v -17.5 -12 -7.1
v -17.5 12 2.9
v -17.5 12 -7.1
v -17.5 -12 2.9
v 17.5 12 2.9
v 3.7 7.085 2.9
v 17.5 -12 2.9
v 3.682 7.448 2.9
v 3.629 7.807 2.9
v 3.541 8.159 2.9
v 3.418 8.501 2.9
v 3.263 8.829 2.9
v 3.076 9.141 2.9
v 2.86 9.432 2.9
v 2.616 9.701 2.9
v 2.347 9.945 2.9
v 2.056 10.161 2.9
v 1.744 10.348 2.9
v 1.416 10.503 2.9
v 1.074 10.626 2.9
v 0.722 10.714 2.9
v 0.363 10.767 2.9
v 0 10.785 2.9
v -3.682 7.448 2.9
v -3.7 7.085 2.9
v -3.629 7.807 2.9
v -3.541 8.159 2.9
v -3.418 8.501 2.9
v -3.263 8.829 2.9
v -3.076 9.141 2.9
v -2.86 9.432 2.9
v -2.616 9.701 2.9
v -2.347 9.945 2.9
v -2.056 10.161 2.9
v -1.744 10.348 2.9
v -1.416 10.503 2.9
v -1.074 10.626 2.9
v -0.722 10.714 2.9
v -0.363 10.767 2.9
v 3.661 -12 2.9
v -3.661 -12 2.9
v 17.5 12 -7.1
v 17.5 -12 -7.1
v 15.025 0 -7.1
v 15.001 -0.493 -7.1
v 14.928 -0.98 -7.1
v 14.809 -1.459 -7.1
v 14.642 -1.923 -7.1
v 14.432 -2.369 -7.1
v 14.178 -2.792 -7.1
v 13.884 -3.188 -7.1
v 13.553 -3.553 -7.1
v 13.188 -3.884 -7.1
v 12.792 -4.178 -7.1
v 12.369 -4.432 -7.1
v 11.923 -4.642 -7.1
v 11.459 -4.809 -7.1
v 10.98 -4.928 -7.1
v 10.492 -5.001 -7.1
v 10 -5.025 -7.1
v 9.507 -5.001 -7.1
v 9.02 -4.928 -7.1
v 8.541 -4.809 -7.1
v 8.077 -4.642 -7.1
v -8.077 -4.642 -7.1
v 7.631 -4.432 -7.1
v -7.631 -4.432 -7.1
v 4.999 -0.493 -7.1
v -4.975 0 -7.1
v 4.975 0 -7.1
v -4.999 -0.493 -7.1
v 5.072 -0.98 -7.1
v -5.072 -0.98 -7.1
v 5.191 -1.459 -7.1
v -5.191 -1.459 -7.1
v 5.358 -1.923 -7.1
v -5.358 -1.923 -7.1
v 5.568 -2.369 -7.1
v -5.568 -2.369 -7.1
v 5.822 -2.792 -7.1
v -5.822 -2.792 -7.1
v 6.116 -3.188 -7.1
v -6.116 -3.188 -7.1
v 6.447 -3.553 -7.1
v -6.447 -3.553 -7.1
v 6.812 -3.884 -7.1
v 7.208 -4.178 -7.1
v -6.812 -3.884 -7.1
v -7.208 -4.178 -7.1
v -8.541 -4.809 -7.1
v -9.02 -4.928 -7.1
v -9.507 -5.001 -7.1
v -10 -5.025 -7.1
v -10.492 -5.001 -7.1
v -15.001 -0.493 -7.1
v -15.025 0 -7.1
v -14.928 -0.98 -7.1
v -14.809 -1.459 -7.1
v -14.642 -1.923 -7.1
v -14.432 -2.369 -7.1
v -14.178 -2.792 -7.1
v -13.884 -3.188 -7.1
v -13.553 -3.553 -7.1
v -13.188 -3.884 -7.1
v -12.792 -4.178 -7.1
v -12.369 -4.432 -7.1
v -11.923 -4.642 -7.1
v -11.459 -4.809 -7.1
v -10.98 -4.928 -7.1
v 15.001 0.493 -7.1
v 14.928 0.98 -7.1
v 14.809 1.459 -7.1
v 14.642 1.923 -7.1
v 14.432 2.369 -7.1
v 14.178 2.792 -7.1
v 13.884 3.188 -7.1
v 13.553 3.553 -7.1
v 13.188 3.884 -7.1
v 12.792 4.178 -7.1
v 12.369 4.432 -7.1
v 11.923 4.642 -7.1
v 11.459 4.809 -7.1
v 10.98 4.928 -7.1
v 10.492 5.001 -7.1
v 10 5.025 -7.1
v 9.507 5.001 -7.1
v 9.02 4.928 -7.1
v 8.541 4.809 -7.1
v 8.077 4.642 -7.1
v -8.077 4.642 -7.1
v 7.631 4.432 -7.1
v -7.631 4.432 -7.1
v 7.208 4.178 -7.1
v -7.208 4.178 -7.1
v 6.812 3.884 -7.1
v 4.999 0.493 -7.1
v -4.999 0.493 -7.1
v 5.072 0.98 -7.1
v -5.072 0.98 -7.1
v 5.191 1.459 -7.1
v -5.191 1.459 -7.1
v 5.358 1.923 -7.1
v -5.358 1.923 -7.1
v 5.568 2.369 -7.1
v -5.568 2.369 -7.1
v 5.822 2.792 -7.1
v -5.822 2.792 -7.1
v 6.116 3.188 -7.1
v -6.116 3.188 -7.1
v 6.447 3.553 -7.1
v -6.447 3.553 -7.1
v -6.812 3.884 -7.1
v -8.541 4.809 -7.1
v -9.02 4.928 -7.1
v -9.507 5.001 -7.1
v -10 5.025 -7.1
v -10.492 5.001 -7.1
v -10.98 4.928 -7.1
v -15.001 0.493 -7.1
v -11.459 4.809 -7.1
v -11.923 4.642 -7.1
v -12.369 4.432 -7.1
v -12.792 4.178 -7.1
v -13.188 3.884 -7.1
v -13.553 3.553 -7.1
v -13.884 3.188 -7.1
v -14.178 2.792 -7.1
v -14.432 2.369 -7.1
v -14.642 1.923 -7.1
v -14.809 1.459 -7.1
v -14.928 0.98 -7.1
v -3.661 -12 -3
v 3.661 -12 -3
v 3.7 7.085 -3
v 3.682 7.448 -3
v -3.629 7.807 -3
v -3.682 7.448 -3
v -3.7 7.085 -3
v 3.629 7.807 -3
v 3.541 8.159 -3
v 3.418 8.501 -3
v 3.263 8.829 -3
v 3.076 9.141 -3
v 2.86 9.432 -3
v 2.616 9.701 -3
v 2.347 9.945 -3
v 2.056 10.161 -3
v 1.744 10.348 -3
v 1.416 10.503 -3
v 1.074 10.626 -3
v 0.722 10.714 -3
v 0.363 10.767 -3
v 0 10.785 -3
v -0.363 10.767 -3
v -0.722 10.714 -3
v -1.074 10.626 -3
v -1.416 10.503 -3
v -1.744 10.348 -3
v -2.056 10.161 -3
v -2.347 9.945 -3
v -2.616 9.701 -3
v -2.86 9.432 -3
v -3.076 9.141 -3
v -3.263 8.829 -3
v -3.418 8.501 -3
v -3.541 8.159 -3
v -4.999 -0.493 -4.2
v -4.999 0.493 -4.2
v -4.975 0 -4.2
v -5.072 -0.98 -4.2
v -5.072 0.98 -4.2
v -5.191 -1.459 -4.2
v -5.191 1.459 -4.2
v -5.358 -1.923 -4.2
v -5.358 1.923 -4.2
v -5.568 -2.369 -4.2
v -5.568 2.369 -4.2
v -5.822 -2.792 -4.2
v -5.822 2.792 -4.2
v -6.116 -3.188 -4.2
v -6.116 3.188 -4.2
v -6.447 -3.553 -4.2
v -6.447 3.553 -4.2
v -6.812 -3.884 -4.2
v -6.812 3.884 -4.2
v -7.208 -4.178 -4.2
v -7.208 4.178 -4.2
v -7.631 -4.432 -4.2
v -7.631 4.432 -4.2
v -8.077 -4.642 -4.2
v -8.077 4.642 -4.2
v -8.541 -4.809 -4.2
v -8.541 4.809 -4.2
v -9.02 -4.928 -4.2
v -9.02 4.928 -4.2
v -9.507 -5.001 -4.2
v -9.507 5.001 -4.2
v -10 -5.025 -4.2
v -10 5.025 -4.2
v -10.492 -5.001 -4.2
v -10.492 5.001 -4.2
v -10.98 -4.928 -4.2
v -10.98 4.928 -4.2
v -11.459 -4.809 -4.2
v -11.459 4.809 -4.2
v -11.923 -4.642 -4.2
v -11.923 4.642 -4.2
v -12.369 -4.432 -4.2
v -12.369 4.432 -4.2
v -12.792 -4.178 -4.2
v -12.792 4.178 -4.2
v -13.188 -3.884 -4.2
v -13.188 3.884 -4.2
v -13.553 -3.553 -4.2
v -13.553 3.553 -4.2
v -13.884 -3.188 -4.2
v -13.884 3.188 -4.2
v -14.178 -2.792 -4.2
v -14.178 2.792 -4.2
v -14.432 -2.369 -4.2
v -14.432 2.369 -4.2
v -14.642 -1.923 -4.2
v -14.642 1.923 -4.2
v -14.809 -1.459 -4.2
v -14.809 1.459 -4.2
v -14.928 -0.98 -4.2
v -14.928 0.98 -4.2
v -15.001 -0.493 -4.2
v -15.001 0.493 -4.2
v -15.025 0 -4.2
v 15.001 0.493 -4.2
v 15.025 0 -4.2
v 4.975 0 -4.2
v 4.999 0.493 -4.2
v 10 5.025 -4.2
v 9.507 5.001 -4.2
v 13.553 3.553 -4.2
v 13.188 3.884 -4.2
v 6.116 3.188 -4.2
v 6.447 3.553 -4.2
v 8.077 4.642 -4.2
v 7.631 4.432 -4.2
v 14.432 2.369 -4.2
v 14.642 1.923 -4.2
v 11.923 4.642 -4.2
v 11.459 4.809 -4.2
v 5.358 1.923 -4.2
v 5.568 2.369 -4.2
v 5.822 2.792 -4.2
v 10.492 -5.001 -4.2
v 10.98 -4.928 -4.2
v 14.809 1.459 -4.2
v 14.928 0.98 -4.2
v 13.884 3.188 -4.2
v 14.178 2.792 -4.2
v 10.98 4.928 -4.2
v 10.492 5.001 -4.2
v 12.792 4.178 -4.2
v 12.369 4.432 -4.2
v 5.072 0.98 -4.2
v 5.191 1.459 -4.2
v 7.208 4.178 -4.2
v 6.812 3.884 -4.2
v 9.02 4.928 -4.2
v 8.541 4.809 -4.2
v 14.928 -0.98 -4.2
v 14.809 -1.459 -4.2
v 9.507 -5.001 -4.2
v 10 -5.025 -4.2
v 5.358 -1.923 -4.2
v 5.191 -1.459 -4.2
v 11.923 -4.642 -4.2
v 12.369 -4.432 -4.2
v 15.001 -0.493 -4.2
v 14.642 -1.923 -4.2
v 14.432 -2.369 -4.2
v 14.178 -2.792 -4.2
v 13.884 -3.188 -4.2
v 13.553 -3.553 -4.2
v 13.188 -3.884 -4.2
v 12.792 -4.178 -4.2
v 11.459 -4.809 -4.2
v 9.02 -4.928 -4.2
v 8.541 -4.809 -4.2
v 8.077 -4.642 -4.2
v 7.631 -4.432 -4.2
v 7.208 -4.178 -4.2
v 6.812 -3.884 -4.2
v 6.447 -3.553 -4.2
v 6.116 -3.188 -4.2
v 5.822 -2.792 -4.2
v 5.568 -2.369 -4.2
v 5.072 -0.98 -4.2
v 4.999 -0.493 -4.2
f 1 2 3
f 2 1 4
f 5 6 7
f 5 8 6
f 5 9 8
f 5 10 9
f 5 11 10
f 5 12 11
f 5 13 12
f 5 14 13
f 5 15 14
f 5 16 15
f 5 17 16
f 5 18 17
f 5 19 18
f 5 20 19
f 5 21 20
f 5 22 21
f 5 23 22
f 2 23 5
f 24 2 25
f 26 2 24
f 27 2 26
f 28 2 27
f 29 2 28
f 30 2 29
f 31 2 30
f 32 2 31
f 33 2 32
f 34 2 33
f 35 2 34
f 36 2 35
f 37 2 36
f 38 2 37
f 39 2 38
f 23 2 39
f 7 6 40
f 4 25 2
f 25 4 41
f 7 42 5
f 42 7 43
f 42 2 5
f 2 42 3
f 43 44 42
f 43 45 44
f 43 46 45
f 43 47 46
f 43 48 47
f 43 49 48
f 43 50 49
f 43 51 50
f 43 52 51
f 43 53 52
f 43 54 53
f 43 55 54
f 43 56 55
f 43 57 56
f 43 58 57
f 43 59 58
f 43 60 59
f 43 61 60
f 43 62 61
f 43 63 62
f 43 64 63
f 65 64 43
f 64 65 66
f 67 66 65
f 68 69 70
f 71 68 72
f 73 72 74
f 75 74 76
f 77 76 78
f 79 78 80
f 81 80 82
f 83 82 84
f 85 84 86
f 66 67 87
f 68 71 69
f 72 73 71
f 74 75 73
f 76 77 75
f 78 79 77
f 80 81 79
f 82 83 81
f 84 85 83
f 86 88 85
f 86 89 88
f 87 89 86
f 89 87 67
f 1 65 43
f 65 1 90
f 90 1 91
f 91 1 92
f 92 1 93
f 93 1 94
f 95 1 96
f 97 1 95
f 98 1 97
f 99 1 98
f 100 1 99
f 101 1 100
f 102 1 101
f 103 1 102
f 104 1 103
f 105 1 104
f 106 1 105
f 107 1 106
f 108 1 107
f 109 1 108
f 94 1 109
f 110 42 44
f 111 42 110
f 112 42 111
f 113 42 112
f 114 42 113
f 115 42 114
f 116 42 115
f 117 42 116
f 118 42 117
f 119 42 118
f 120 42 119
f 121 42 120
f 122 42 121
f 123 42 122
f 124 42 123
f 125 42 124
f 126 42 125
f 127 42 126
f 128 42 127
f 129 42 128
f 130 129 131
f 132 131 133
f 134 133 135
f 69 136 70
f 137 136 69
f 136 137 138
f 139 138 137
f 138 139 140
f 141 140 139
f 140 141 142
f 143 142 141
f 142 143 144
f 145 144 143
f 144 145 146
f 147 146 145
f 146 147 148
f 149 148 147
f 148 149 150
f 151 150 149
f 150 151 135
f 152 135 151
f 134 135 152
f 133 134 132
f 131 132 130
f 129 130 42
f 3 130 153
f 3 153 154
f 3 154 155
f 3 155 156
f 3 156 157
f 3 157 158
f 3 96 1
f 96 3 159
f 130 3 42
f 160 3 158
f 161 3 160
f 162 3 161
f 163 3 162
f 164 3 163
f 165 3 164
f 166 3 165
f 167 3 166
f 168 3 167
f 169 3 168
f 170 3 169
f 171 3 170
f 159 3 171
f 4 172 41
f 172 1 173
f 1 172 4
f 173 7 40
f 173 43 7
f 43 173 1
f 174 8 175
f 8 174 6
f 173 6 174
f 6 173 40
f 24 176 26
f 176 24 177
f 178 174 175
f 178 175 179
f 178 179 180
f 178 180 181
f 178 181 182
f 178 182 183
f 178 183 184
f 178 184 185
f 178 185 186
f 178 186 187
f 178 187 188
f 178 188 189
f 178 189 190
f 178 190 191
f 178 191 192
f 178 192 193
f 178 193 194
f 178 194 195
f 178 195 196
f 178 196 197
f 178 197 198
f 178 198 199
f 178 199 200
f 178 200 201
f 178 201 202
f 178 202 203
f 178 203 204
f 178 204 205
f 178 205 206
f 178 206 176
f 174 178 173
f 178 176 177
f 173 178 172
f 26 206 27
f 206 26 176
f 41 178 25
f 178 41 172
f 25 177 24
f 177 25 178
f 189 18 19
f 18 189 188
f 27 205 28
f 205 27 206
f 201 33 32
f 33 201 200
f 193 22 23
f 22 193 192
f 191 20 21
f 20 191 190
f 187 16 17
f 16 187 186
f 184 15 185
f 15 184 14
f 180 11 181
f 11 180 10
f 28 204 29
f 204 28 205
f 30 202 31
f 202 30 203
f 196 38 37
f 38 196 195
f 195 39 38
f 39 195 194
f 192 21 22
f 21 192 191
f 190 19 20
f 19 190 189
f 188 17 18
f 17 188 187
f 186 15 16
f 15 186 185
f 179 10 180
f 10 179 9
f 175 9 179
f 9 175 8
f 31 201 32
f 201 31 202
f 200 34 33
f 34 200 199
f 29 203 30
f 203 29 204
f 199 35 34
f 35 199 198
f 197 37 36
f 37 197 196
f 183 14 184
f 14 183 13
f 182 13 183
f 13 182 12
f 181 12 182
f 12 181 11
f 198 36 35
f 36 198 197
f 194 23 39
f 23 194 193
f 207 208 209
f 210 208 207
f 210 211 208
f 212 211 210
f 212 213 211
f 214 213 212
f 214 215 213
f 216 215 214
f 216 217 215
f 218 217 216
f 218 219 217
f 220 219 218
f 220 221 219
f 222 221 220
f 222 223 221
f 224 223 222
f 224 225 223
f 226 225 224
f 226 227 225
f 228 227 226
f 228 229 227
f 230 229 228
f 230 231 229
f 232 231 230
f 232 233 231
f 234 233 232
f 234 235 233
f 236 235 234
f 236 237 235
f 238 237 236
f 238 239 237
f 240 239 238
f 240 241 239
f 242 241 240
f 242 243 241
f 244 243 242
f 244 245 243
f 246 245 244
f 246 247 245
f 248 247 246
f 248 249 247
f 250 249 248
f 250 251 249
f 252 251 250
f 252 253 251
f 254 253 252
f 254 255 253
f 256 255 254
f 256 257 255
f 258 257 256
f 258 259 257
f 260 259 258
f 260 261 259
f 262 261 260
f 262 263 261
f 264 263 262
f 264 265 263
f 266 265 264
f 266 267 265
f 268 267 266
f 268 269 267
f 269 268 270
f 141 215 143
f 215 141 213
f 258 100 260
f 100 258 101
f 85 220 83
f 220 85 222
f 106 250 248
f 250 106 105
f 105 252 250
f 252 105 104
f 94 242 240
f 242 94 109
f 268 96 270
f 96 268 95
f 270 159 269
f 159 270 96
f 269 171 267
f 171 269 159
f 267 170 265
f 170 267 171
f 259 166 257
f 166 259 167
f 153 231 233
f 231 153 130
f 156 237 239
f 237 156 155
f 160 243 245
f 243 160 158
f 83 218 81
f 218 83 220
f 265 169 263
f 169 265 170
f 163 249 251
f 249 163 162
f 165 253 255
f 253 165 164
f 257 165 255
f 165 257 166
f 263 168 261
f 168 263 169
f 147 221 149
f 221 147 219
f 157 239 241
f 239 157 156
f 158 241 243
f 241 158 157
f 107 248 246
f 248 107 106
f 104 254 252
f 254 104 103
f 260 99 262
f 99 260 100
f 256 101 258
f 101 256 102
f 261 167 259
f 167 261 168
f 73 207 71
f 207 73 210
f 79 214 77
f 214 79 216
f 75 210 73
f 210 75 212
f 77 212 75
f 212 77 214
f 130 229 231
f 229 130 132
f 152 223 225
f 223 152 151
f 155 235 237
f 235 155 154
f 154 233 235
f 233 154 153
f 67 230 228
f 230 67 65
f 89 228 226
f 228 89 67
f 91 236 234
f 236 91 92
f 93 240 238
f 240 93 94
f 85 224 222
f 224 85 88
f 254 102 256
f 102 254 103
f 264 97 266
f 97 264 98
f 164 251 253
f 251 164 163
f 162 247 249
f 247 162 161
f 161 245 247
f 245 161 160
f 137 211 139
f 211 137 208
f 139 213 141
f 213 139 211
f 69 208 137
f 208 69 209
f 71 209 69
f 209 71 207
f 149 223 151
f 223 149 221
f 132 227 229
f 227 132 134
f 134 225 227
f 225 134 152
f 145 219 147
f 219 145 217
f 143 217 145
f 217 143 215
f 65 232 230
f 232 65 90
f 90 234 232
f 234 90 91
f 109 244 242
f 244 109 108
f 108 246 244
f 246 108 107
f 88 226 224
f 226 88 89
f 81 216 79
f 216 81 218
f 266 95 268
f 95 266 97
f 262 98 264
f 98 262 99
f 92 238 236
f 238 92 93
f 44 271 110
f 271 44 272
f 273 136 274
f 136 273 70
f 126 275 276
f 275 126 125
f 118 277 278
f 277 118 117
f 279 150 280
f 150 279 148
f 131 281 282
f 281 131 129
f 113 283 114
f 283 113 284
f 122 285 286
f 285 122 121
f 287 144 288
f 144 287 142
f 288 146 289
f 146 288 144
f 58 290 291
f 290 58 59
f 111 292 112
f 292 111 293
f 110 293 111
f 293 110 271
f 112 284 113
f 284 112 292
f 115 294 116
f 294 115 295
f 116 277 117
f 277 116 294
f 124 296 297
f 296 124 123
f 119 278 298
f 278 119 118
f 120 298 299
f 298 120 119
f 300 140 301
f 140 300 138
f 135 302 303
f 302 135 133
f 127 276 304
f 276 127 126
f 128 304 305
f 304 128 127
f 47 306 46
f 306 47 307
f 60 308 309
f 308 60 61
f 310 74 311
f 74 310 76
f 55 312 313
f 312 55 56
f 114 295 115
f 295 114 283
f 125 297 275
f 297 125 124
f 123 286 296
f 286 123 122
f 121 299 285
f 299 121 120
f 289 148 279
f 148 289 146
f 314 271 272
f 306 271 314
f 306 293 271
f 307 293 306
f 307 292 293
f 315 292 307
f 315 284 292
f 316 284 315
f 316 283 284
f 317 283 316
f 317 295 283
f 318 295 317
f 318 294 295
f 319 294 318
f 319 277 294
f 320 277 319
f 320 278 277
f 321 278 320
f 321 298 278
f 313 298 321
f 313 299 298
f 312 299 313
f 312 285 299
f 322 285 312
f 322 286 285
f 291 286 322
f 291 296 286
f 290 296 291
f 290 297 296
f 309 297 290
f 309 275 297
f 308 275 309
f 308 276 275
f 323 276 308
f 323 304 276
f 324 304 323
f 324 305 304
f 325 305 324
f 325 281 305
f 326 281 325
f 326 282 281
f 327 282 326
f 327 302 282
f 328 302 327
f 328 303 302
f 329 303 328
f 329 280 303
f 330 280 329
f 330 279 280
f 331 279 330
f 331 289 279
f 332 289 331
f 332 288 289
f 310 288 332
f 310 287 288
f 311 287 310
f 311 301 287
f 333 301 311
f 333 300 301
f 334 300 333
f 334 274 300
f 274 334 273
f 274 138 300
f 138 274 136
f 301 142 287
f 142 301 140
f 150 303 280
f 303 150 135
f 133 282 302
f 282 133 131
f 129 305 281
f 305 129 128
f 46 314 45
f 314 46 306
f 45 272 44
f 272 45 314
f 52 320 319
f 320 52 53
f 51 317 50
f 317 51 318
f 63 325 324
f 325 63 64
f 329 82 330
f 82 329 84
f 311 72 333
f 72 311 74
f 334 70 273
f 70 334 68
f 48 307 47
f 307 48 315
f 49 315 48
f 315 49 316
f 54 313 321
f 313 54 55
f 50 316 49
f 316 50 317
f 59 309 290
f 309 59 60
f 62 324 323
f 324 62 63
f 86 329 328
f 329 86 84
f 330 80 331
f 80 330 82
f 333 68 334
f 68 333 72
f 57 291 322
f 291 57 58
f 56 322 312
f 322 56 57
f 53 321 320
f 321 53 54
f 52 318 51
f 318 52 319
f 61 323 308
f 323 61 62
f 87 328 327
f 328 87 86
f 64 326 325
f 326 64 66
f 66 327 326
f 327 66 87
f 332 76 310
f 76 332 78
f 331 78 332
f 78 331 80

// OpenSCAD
// Aftershokz Aeropex Charger Dock

Device = "OpenRun"; // ["OpenRun","OpenRun Pro"]

module Charger()
{
    // Charger Dimentions
    Width = 7.32;
    Length = 21.57;
    Height = 6;
    EndRadius = 3.7;

    hull()
    {
        translate([ 0, -EndRadius, 0 ])
        {
            cube(size = [ Width, Length - EndRadius, Height ], center = true);
        }
        translate([ 0, Length / 2 - EndRadius, 0 ])
        {
            cylinder(r = EndRadius, h = 6, center = true);
        }
    }
}
$fn = 64;
Width = 35;
Length = 24;
Height = 10;
Triangle = [ [ 0, 0 ], [ Length / 2, 0 ], [ Length / 2, Height ] ];

difference()
{
    if (Device == "OpenRun")
    {
        difference()
        {
            // Base
            translate([ 0, 0, -2.1 ])
            {
                cube(size = [ Width, Length, Height ], center = true);
            }
            // Charger holder, OpenRun
            Charger();
        }
    }
    else
    {
        // OpenRun Pro
        // Base
        difference()
        {
            hull()
            {
                translate([ 0, 0, -2.1 ])
                {
                    cube(size = [ Width, Length, Height ], center = true);
                    translate([ 0, 0, 10 ]) rotate([ 90, 0, 90 ])
                        linear_extrude(height = Width, center = true, convexity = 10, scale = [ 1, 1 ], $fn = 100)
                            polygon(Triangle);
                }
            }
            // Charger holder
            translate([ 0, 1, 1 ]) rotate([ 32, 0, 0 ]) translate([ 0, 3.5, 5.6 ])
            {
                translate([ 0, -10, 0 ]) Charger();
                Charger();
            }
        }
    }

    // Magnet D10x3mm insert hole
    mirror([ 1, 0, 0 ])
    {
        translate([ 10, 0, -(Height / 2 + 0.7) ])
        {
            cylinder(r = 10.05 / 2, h = 3, center = true);
        }
    }
    // Mag D10x3mm insert hole
    mirror([ 0, 0, 0 ])
    {
        translate([ 10, 0, -(Height / 2 + 0.7) ])
        {
            cylinder(r = 10.05 / 2, h = 3, center = true);
        }
    }
}
